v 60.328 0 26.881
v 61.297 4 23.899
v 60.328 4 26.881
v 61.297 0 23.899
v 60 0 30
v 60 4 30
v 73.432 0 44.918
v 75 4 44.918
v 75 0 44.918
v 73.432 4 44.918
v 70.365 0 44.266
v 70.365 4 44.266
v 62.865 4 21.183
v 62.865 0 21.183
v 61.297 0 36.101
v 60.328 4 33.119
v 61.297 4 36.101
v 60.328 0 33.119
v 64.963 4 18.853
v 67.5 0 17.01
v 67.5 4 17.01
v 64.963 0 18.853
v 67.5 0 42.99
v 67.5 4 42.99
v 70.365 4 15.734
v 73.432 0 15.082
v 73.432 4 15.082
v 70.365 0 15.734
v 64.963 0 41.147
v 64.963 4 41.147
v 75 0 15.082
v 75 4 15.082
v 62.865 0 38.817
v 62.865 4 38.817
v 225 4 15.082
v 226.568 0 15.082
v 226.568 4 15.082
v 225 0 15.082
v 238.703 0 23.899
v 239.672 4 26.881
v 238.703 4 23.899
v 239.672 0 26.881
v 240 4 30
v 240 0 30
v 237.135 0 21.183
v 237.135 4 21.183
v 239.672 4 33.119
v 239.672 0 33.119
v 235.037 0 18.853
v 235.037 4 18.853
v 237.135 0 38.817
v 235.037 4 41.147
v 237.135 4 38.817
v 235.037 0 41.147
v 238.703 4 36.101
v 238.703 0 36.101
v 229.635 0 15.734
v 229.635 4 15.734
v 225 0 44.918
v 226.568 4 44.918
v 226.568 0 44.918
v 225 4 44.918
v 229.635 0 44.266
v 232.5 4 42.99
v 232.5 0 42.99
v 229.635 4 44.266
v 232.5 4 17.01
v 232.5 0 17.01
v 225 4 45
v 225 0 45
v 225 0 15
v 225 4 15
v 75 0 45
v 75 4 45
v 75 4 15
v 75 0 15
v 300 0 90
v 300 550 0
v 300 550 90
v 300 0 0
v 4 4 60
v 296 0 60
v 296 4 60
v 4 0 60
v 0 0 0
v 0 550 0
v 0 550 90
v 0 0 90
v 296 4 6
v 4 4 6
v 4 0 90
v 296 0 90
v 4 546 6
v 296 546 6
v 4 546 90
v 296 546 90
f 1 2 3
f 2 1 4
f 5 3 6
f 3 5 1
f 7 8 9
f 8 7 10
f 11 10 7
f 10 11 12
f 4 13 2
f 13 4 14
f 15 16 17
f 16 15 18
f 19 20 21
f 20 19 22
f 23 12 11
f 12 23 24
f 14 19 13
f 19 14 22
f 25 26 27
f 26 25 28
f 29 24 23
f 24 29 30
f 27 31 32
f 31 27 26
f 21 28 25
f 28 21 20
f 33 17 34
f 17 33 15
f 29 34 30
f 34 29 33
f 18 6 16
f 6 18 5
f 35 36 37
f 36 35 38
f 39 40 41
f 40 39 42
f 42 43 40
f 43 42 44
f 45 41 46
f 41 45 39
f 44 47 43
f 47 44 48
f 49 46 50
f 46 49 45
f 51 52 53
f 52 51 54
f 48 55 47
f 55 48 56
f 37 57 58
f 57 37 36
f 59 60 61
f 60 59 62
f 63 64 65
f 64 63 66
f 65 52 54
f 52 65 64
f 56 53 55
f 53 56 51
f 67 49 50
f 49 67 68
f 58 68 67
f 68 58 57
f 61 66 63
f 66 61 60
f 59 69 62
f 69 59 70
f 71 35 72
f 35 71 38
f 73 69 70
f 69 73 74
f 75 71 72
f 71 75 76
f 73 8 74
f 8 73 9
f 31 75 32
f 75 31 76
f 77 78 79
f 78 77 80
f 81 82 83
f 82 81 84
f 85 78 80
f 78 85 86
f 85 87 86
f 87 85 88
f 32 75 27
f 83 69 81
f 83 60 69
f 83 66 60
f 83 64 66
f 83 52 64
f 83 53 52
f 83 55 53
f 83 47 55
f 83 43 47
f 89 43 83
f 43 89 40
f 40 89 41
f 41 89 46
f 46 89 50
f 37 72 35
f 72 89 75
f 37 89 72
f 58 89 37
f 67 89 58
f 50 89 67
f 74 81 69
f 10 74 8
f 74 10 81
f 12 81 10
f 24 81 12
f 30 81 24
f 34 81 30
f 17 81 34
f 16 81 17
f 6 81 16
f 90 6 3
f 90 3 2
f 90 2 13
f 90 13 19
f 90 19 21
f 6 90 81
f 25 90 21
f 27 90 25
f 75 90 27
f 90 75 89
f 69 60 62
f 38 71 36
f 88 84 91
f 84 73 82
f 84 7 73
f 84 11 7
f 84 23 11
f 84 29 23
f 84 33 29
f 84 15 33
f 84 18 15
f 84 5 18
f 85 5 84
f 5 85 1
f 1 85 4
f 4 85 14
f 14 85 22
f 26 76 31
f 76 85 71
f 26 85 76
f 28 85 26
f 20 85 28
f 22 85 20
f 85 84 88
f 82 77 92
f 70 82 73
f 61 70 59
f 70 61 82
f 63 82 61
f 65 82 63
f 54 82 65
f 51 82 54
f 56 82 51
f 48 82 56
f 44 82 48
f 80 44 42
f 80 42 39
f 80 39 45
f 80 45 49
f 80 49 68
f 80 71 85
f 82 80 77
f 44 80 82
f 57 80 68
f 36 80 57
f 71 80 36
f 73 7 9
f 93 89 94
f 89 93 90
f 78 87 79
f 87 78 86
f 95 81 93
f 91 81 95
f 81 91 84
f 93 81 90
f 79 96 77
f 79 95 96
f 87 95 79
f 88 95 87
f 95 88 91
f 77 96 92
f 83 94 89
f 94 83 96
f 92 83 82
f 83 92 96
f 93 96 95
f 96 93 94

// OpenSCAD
width = 300;
length = 550;
height = 90;

front_height = 60;

bottom_thick = 6;
wall_thick = 4;

e = 0.1;

module box() {

     cube( [width, length, bottom_thick]);
     cube( [wall_thick, length, height]);
     translate( [width-wall_thick, 0, 0])
	  cube( [wall_thick, length, height]);
     translate( [0, length-wall_thick, 0])
	  cube( [width, wall_thick, height]);
     difference() {
	  cube([width, wall_thick, front_height]);
	  translate( [width/4, -e, front_height/2]) {
	       translate( [0, 0, -front_height/4])
		    cube( [width/2, wall_thick+2*e, front_height/2]);
	       rotate( [-90,0,0]) {
		    cylinder( h=wall_thick+2*e, r=front_height/4);
		    translate( [width/2, 0, 0])
			 cylinder( h=wall_thick+2*e, r=front_height/4);
	       }
	  }
     }
}

box();

	  
